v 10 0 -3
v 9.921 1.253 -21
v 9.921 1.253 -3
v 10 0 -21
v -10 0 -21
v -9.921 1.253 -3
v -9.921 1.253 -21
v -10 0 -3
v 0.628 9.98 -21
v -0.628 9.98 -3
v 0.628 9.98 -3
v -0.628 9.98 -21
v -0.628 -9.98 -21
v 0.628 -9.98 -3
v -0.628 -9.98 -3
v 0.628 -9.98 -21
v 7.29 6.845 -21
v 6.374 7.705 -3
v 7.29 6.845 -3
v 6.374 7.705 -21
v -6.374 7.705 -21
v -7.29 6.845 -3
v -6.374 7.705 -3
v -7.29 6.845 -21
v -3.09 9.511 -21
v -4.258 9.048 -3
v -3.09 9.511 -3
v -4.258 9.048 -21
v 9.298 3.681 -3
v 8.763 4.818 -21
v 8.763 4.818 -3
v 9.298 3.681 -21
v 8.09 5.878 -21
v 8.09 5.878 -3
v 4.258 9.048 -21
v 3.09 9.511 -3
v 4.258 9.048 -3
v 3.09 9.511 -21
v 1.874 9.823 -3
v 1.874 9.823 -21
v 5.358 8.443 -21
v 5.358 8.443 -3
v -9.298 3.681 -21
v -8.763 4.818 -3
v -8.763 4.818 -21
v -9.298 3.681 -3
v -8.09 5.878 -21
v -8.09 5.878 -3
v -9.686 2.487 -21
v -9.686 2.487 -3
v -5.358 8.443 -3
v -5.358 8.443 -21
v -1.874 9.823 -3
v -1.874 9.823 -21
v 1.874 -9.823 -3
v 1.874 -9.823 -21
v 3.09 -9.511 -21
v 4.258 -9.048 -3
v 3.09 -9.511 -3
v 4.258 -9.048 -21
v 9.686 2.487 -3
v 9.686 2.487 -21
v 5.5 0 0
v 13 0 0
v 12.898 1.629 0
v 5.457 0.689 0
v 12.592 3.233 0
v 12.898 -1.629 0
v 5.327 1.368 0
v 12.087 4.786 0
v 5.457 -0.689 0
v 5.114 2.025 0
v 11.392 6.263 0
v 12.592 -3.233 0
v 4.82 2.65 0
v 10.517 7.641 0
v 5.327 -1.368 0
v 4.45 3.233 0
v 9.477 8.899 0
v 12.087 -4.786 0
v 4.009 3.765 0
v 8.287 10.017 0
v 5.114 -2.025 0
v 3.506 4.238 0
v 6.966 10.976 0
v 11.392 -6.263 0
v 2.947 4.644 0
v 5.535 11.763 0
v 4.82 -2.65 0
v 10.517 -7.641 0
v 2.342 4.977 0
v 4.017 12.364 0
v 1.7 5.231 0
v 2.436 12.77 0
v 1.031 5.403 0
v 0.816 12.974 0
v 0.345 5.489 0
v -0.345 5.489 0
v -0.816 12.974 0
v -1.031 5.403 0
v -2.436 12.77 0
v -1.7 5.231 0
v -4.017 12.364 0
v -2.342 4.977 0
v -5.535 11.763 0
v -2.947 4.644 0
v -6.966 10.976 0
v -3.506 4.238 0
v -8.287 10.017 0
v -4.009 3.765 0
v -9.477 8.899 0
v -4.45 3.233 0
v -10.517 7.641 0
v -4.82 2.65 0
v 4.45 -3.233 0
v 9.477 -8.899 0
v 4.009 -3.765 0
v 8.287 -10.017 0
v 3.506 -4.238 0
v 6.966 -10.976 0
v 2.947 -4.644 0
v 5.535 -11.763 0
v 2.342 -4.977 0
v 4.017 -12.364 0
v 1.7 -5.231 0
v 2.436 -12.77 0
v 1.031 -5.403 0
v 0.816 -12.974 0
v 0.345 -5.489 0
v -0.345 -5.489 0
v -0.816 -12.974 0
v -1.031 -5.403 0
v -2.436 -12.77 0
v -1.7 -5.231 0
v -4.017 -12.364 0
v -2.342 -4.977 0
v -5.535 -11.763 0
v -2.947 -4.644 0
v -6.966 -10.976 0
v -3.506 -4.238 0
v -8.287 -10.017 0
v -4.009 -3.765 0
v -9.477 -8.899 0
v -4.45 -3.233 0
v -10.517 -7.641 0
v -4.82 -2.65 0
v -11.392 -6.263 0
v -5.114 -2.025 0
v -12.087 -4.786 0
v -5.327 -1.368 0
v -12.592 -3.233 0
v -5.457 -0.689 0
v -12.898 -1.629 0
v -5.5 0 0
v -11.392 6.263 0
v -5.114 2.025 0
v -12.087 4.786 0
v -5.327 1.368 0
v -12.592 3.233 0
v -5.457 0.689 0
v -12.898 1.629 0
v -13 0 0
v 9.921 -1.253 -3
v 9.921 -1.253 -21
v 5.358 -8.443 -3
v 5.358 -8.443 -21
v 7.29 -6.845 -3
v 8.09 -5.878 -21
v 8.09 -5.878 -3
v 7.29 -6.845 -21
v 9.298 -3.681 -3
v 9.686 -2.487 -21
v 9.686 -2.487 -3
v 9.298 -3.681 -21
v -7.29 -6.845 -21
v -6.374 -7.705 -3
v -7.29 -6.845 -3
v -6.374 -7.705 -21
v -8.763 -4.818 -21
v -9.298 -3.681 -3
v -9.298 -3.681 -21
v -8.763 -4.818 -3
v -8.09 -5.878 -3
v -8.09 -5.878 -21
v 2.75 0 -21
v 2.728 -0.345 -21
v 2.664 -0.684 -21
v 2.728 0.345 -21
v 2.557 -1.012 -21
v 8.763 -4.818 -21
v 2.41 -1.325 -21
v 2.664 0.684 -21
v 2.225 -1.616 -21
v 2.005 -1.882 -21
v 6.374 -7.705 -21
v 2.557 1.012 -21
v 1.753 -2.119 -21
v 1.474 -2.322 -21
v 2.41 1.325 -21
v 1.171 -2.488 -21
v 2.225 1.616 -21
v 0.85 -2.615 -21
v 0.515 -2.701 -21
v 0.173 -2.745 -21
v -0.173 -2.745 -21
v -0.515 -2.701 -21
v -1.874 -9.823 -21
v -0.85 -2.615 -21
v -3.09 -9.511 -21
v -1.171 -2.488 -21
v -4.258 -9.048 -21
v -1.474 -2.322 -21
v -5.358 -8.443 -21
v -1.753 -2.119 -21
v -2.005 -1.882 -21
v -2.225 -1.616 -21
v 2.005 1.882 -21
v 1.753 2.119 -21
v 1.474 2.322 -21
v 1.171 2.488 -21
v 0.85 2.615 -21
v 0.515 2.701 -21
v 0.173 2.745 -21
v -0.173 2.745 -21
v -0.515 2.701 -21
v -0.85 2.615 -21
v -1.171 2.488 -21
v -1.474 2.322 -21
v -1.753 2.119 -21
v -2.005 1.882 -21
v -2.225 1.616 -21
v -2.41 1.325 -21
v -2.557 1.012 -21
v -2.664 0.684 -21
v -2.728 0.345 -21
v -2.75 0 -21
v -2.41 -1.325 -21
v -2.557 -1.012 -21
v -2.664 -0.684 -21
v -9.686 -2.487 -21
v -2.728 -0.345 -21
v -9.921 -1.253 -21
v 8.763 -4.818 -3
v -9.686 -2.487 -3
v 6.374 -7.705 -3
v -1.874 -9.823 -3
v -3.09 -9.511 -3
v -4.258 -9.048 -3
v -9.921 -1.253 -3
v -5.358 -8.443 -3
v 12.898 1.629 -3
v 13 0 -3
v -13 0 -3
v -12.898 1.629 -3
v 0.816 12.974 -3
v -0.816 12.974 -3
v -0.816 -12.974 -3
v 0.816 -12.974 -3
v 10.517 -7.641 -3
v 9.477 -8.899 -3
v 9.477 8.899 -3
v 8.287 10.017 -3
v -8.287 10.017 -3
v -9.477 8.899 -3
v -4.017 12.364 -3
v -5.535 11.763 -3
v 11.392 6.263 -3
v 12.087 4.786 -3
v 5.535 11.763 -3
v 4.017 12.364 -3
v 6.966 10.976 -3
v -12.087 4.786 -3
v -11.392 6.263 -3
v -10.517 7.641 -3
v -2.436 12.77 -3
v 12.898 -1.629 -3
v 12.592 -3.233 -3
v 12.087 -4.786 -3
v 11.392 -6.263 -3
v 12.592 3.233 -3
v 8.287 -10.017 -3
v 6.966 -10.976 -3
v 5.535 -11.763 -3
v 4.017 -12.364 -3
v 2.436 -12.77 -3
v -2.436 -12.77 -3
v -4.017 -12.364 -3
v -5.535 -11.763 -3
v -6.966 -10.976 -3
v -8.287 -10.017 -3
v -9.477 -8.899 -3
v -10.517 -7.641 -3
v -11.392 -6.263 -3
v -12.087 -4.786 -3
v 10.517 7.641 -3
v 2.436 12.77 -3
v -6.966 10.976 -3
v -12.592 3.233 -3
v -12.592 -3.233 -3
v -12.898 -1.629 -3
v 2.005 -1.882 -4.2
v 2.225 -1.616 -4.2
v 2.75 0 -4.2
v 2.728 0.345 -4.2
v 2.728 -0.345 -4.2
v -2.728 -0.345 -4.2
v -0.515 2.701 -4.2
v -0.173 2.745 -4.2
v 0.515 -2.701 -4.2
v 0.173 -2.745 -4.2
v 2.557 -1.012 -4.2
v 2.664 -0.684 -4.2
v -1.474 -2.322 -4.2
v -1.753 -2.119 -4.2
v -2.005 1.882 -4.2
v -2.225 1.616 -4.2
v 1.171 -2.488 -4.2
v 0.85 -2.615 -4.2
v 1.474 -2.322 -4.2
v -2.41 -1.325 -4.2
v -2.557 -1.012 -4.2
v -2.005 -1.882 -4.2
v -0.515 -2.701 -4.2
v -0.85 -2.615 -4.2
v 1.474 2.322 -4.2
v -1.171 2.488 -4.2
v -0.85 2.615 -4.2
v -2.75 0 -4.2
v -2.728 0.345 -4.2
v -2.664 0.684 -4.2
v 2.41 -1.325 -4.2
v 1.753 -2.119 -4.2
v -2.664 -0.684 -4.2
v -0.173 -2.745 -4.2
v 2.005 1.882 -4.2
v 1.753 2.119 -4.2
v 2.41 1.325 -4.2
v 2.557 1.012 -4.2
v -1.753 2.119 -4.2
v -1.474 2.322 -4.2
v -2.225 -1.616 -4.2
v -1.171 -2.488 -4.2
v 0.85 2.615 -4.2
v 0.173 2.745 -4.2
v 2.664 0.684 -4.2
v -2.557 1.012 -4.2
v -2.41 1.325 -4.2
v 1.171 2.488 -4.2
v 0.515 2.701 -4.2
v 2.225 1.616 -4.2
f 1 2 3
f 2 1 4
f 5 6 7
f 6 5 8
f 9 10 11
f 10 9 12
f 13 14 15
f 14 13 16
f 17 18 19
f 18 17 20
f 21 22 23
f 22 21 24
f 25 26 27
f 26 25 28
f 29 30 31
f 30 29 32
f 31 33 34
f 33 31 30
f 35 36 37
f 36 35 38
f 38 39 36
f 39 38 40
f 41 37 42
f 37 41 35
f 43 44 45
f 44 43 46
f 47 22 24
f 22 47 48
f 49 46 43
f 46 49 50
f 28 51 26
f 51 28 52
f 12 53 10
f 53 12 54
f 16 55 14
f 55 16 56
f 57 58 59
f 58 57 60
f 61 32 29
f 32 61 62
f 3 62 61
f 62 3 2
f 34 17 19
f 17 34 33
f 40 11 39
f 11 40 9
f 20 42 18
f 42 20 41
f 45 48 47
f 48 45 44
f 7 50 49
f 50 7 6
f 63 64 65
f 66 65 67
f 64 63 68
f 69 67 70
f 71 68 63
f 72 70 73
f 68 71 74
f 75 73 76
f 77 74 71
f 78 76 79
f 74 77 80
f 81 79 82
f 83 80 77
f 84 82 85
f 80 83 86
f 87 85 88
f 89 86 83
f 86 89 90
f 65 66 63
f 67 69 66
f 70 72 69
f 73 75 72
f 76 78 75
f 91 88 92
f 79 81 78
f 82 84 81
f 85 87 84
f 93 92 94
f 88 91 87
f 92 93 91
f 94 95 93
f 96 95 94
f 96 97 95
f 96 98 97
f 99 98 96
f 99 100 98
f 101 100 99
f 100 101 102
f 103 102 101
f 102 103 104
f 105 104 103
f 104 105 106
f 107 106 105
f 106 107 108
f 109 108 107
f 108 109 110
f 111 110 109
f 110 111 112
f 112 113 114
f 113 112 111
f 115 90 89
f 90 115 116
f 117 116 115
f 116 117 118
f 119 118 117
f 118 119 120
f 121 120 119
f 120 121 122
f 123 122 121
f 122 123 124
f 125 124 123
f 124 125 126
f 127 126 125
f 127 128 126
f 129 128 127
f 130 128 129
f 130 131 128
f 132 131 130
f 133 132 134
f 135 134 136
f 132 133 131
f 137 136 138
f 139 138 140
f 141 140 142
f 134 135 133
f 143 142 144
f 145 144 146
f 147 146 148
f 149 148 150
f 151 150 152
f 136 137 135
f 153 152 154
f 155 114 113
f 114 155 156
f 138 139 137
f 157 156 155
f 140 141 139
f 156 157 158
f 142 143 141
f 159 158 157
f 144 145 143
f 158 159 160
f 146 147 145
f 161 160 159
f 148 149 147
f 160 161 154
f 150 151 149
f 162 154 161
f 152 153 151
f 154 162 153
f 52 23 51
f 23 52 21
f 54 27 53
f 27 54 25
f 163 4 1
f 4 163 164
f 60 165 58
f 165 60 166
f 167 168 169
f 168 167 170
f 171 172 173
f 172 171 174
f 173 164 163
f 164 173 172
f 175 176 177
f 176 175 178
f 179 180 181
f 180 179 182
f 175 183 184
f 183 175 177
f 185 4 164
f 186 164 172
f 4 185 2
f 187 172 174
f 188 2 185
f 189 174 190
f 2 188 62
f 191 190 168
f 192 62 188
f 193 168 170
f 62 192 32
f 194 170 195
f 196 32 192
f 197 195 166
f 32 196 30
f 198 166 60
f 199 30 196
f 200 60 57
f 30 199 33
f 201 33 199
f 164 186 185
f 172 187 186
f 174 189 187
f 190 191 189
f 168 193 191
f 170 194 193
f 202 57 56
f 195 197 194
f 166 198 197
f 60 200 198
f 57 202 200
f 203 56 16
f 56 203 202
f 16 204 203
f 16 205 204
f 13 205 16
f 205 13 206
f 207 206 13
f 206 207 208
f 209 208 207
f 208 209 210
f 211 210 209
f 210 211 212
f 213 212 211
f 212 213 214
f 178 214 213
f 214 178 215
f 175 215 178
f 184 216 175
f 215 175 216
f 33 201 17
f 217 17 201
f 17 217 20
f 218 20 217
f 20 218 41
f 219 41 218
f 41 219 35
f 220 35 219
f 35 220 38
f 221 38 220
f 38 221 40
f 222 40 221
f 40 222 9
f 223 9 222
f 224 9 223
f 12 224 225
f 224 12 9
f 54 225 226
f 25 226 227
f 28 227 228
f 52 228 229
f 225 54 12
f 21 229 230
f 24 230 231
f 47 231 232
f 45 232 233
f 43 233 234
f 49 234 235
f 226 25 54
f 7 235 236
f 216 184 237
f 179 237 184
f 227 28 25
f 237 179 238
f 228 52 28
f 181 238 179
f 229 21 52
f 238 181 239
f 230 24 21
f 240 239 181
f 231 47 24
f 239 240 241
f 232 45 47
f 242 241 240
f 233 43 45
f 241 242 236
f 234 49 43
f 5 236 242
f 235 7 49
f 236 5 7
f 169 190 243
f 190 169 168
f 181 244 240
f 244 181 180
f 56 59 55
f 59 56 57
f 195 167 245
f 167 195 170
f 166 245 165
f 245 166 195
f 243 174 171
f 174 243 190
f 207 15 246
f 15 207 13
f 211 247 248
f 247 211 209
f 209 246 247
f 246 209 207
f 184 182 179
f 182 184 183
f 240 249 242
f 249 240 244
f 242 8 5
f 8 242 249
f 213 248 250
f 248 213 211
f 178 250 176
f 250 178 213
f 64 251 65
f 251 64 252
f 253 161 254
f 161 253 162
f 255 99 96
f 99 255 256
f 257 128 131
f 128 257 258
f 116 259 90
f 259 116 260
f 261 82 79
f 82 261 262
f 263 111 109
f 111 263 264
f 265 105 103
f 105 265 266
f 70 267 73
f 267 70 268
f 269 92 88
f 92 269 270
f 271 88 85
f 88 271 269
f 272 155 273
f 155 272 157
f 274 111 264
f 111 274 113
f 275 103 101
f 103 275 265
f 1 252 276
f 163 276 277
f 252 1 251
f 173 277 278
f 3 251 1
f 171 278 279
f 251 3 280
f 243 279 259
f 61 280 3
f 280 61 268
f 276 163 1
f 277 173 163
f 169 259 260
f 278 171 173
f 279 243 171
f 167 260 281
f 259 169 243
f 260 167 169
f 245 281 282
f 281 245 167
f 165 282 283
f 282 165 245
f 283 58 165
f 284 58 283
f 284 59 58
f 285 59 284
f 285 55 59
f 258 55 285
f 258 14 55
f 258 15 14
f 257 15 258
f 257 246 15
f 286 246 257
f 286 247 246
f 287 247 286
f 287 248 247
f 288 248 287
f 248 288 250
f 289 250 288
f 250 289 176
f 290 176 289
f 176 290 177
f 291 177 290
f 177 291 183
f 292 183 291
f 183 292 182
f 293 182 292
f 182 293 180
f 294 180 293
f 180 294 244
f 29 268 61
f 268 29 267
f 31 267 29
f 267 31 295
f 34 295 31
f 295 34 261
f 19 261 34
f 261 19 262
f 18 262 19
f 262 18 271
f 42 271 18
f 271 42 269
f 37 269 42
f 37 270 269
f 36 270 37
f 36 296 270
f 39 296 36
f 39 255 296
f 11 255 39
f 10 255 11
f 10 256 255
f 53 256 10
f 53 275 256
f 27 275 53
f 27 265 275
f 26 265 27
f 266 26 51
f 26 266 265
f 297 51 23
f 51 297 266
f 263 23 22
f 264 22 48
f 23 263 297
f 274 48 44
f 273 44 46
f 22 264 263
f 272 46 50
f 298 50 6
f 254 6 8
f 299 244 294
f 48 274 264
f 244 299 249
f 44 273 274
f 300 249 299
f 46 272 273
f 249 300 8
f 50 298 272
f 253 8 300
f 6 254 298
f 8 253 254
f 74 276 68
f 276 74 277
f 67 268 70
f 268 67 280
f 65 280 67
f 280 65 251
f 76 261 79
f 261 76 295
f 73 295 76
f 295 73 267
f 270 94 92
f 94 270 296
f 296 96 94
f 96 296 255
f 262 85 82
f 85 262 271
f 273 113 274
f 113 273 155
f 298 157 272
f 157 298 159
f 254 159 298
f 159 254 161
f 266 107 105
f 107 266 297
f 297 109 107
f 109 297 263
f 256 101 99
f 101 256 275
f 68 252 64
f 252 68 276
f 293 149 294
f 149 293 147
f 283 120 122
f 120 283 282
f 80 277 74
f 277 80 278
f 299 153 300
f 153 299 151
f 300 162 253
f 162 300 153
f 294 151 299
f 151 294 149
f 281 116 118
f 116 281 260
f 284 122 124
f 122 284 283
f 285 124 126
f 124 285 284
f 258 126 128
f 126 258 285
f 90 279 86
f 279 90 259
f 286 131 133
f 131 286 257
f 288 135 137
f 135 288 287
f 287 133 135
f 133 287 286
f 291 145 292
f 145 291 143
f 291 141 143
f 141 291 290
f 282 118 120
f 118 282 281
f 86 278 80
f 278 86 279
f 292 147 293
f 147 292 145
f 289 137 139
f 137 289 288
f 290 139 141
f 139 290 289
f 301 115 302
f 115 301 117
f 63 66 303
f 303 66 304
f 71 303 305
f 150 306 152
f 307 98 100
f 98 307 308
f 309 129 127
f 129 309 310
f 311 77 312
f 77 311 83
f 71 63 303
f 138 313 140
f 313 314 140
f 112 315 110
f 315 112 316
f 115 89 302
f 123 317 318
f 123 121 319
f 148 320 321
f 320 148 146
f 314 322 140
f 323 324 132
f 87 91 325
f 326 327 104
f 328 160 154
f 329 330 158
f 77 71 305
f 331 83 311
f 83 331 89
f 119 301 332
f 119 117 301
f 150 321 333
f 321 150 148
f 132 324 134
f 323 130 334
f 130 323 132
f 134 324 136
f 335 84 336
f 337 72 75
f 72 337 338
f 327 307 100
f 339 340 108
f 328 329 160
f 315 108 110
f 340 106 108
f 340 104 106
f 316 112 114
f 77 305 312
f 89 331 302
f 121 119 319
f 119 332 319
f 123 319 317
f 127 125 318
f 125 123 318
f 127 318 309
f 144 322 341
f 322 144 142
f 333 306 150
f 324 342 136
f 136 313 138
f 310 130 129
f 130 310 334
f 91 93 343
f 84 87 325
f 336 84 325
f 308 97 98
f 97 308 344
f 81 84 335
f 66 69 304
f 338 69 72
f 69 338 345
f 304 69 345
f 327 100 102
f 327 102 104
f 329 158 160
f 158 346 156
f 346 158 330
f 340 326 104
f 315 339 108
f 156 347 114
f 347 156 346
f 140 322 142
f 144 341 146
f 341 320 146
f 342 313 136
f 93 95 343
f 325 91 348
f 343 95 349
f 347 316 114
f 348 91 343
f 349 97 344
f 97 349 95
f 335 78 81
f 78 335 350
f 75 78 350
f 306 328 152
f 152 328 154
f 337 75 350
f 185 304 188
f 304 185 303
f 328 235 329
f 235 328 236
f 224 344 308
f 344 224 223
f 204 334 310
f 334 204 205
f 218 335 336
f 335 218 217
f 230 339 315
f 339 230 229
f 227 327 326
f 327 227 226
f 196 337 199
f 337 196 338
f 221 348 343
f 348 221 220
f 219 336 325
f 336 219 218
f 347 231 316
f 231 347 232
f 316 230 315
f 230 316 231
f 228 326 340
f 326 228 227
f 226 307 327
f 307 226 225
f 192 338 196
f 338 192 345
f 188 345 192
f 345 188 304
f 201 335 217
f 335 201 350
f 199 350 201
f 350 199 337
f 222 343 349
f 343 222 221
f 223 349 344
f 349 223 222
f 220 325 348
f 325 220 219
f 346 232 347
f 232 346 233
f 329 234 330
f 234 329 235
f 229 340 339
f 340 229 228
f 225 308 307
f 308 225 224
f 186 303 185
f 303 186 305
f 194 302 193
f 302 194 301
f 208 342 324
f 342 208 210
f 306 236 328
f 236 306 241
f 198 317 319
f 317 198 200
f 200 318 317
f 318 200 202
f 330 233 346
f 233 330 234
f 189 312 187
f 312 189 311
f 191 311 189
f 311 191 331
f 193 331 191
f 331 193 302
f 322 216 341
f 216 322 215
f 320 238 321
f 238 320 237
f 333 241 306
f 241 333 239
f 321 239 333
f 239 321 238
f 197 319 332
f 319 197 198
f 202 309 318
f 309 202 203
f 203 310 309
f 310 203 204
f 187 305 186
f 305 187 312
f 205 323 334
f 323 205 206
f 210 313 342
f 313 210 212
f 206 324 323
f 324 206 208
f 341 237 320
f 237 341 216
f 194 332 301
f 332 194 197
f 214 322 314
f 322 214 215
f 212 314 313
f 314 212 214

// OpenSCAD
$fn = 50;


difference() {
	union() {
		translate(v = [0, 0, -21.0000000000]) {
			cylinder(h = 21, r = 10.0000000000);
		}
		translate(v = [0, 0, -3.0000000000]) {
			cylinder(h = 3, r = 13.0000000000);
		}
	}
	union() {
		translate(v = [0, 0, 0]) {
			rotate(a = [0, 0, 0]) {
				difference() {
					union() {
						#translate(v = [0, 0, -21.0000000000]) {
							cylinder(h = 21, r = 2.2500000000);
						}
						#translate(v = [0, 0, -4.2000000000]) {
							cylinder(h = 4.2000000000, r1 = 2.7500000000, r2 = 5.5000000000);
						}
						#translate(v = [0, 0, -21.0000000000]) {
							cylinder(h = 21, r = 2.7500000000);
						}
						#translate(v = [0, 0, -21.0000000000]) {
							cylinder(h = 21, r = 2.2500000000);
						}
					}
					union();
				}
			}
		}
	}
}
